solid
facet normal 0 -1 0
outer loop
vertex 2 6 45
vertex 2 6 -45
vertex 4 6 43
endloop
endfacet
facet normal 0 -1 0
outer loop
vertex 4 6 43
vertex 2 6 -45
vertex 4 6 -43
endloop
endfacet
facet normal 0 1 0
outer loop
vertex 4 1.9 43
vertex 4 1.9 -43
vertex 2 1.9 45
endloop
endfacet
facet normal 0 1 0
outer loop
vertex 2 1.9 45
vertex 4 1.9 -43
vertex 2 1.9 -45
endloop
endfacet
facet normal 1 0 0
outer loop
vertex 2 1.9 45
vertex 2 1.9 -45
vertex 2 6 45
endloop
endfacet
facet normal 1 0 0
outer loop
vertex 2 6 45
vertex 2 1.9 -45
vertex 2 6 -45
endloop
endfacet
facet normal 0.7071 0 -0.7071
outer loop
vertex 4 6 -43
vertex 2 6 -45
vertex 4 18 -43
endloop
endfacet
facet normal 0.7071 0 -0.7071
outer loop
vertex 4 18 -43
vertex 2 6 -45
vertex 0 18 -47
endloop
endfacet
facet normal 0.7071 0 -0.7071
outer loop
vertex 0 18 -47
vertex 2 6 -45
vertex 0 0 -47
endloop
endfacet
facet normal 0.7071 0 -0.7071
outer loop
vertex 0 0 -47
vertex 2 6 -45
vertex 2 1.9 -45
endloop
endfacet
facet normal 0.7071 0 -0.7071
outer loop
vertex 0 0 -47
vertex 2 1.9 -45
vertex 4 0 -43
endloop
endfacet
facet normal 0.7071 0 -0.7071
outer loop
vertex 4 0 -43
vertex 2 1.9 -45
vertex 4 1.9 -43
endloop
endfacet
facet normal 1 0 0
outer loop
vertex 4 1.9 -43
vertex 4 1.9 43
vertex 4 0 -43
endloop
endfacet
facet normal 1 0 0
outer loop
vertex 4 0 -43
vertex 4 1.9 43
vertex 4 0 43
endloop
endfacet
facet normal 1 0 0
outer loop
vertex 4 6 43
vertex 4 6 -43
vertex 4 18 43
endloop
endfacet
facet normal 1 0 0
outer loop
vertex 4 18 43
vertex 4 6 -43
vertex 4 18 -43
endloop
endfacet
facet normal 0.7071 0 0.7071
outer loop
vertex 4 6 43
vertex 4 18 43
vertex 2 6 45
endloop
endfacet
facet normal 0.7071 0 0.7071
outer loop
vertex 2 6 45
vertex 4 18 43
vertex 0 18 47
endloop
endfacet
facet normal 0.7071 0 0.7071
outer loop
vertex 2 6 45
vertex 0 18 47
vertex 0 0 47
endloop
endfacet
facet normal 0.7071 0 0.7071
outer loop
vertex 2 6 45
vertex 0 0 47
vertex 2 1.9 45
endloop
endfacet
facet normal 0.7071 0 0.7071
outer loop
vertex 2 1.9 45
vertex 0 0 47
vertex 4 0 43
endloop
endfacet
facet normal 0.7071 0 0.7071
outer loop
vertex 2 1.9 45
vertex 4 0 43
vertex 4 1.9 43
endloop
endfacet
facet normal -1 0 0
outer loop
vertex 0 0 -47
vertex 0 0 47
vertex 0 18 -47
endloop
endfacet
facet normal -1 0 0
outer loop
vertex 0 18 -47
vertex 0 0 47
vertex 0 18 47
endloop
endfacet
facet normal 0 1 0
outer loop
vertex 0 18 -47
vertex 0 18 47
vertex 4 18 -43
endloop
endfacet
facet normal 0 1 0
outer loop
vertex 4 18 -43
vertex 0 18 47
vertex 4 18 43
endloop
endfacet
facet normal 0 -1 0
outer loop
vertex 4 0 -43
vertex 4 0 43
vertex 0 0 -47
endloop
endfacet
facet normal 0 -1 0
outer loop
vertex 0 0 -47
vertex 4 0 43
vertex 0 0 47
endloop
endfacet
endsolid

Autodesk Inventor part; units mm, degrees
ref_plane "YZ Plane" through (0, 0, 0) normal (1, 0, 0) x (0, 1, 0)
ref_plane "XZ Plane" through (0, 0, 0) normal (0, 1, 0) x (-1, 0, 0)
ref_plane "XY Plane" through (0, 0, 0) normal (0, 0, 1) x (1, 0, 0)
sketch "Sketch1" plane through (0, 0, 0) normal (0, 1, 0) x (-1, 0, 0)
  line L0 (0, 47) -> (0, -47)
  line L1 (-4, 43) -> (-4, -43)
  line L2 (0, 0) -> (-19.6483, 0) construction
  line L3 (-4, 43) -> (0, 47)
  line L4 (0, -47) -> (-4, -43)
  point P0 (-4, 0)
  dimension "d6" = 94
  dimension "d7" = 86
  dimension "d8" = 4
extrude "Extrusion1" add sketch "Sketch1" along normal blind 18
sketch "Sketch2" plane through (4, 0, 43) normal (1, 0, 0) x (0, 0, -1)
  line L0 (-4, 0) -> (-4, 18) projected
  line L1 (90, 0) -> (90, 18) projected
  line L2 (-4, 6) -> (90, 6)
  line L3 (90, 6) -> (90, 1.9)
  line L4 (90, 1.9) -> (-4, 1.9)
  line L5 (-4, 1.9) -> (-4, 6)
  line L6 (0, 0) -> (86, 0) projected
  point P0 (43, 0)
  point P1 (-4, 1.9)
  dimension "d11" = 4.1
  dimension "d12" = 1.9
extrude "Extrusion2" cut sketch "Sketch2" against normal blind 2
properties part number "long PDMS Chamber side"
